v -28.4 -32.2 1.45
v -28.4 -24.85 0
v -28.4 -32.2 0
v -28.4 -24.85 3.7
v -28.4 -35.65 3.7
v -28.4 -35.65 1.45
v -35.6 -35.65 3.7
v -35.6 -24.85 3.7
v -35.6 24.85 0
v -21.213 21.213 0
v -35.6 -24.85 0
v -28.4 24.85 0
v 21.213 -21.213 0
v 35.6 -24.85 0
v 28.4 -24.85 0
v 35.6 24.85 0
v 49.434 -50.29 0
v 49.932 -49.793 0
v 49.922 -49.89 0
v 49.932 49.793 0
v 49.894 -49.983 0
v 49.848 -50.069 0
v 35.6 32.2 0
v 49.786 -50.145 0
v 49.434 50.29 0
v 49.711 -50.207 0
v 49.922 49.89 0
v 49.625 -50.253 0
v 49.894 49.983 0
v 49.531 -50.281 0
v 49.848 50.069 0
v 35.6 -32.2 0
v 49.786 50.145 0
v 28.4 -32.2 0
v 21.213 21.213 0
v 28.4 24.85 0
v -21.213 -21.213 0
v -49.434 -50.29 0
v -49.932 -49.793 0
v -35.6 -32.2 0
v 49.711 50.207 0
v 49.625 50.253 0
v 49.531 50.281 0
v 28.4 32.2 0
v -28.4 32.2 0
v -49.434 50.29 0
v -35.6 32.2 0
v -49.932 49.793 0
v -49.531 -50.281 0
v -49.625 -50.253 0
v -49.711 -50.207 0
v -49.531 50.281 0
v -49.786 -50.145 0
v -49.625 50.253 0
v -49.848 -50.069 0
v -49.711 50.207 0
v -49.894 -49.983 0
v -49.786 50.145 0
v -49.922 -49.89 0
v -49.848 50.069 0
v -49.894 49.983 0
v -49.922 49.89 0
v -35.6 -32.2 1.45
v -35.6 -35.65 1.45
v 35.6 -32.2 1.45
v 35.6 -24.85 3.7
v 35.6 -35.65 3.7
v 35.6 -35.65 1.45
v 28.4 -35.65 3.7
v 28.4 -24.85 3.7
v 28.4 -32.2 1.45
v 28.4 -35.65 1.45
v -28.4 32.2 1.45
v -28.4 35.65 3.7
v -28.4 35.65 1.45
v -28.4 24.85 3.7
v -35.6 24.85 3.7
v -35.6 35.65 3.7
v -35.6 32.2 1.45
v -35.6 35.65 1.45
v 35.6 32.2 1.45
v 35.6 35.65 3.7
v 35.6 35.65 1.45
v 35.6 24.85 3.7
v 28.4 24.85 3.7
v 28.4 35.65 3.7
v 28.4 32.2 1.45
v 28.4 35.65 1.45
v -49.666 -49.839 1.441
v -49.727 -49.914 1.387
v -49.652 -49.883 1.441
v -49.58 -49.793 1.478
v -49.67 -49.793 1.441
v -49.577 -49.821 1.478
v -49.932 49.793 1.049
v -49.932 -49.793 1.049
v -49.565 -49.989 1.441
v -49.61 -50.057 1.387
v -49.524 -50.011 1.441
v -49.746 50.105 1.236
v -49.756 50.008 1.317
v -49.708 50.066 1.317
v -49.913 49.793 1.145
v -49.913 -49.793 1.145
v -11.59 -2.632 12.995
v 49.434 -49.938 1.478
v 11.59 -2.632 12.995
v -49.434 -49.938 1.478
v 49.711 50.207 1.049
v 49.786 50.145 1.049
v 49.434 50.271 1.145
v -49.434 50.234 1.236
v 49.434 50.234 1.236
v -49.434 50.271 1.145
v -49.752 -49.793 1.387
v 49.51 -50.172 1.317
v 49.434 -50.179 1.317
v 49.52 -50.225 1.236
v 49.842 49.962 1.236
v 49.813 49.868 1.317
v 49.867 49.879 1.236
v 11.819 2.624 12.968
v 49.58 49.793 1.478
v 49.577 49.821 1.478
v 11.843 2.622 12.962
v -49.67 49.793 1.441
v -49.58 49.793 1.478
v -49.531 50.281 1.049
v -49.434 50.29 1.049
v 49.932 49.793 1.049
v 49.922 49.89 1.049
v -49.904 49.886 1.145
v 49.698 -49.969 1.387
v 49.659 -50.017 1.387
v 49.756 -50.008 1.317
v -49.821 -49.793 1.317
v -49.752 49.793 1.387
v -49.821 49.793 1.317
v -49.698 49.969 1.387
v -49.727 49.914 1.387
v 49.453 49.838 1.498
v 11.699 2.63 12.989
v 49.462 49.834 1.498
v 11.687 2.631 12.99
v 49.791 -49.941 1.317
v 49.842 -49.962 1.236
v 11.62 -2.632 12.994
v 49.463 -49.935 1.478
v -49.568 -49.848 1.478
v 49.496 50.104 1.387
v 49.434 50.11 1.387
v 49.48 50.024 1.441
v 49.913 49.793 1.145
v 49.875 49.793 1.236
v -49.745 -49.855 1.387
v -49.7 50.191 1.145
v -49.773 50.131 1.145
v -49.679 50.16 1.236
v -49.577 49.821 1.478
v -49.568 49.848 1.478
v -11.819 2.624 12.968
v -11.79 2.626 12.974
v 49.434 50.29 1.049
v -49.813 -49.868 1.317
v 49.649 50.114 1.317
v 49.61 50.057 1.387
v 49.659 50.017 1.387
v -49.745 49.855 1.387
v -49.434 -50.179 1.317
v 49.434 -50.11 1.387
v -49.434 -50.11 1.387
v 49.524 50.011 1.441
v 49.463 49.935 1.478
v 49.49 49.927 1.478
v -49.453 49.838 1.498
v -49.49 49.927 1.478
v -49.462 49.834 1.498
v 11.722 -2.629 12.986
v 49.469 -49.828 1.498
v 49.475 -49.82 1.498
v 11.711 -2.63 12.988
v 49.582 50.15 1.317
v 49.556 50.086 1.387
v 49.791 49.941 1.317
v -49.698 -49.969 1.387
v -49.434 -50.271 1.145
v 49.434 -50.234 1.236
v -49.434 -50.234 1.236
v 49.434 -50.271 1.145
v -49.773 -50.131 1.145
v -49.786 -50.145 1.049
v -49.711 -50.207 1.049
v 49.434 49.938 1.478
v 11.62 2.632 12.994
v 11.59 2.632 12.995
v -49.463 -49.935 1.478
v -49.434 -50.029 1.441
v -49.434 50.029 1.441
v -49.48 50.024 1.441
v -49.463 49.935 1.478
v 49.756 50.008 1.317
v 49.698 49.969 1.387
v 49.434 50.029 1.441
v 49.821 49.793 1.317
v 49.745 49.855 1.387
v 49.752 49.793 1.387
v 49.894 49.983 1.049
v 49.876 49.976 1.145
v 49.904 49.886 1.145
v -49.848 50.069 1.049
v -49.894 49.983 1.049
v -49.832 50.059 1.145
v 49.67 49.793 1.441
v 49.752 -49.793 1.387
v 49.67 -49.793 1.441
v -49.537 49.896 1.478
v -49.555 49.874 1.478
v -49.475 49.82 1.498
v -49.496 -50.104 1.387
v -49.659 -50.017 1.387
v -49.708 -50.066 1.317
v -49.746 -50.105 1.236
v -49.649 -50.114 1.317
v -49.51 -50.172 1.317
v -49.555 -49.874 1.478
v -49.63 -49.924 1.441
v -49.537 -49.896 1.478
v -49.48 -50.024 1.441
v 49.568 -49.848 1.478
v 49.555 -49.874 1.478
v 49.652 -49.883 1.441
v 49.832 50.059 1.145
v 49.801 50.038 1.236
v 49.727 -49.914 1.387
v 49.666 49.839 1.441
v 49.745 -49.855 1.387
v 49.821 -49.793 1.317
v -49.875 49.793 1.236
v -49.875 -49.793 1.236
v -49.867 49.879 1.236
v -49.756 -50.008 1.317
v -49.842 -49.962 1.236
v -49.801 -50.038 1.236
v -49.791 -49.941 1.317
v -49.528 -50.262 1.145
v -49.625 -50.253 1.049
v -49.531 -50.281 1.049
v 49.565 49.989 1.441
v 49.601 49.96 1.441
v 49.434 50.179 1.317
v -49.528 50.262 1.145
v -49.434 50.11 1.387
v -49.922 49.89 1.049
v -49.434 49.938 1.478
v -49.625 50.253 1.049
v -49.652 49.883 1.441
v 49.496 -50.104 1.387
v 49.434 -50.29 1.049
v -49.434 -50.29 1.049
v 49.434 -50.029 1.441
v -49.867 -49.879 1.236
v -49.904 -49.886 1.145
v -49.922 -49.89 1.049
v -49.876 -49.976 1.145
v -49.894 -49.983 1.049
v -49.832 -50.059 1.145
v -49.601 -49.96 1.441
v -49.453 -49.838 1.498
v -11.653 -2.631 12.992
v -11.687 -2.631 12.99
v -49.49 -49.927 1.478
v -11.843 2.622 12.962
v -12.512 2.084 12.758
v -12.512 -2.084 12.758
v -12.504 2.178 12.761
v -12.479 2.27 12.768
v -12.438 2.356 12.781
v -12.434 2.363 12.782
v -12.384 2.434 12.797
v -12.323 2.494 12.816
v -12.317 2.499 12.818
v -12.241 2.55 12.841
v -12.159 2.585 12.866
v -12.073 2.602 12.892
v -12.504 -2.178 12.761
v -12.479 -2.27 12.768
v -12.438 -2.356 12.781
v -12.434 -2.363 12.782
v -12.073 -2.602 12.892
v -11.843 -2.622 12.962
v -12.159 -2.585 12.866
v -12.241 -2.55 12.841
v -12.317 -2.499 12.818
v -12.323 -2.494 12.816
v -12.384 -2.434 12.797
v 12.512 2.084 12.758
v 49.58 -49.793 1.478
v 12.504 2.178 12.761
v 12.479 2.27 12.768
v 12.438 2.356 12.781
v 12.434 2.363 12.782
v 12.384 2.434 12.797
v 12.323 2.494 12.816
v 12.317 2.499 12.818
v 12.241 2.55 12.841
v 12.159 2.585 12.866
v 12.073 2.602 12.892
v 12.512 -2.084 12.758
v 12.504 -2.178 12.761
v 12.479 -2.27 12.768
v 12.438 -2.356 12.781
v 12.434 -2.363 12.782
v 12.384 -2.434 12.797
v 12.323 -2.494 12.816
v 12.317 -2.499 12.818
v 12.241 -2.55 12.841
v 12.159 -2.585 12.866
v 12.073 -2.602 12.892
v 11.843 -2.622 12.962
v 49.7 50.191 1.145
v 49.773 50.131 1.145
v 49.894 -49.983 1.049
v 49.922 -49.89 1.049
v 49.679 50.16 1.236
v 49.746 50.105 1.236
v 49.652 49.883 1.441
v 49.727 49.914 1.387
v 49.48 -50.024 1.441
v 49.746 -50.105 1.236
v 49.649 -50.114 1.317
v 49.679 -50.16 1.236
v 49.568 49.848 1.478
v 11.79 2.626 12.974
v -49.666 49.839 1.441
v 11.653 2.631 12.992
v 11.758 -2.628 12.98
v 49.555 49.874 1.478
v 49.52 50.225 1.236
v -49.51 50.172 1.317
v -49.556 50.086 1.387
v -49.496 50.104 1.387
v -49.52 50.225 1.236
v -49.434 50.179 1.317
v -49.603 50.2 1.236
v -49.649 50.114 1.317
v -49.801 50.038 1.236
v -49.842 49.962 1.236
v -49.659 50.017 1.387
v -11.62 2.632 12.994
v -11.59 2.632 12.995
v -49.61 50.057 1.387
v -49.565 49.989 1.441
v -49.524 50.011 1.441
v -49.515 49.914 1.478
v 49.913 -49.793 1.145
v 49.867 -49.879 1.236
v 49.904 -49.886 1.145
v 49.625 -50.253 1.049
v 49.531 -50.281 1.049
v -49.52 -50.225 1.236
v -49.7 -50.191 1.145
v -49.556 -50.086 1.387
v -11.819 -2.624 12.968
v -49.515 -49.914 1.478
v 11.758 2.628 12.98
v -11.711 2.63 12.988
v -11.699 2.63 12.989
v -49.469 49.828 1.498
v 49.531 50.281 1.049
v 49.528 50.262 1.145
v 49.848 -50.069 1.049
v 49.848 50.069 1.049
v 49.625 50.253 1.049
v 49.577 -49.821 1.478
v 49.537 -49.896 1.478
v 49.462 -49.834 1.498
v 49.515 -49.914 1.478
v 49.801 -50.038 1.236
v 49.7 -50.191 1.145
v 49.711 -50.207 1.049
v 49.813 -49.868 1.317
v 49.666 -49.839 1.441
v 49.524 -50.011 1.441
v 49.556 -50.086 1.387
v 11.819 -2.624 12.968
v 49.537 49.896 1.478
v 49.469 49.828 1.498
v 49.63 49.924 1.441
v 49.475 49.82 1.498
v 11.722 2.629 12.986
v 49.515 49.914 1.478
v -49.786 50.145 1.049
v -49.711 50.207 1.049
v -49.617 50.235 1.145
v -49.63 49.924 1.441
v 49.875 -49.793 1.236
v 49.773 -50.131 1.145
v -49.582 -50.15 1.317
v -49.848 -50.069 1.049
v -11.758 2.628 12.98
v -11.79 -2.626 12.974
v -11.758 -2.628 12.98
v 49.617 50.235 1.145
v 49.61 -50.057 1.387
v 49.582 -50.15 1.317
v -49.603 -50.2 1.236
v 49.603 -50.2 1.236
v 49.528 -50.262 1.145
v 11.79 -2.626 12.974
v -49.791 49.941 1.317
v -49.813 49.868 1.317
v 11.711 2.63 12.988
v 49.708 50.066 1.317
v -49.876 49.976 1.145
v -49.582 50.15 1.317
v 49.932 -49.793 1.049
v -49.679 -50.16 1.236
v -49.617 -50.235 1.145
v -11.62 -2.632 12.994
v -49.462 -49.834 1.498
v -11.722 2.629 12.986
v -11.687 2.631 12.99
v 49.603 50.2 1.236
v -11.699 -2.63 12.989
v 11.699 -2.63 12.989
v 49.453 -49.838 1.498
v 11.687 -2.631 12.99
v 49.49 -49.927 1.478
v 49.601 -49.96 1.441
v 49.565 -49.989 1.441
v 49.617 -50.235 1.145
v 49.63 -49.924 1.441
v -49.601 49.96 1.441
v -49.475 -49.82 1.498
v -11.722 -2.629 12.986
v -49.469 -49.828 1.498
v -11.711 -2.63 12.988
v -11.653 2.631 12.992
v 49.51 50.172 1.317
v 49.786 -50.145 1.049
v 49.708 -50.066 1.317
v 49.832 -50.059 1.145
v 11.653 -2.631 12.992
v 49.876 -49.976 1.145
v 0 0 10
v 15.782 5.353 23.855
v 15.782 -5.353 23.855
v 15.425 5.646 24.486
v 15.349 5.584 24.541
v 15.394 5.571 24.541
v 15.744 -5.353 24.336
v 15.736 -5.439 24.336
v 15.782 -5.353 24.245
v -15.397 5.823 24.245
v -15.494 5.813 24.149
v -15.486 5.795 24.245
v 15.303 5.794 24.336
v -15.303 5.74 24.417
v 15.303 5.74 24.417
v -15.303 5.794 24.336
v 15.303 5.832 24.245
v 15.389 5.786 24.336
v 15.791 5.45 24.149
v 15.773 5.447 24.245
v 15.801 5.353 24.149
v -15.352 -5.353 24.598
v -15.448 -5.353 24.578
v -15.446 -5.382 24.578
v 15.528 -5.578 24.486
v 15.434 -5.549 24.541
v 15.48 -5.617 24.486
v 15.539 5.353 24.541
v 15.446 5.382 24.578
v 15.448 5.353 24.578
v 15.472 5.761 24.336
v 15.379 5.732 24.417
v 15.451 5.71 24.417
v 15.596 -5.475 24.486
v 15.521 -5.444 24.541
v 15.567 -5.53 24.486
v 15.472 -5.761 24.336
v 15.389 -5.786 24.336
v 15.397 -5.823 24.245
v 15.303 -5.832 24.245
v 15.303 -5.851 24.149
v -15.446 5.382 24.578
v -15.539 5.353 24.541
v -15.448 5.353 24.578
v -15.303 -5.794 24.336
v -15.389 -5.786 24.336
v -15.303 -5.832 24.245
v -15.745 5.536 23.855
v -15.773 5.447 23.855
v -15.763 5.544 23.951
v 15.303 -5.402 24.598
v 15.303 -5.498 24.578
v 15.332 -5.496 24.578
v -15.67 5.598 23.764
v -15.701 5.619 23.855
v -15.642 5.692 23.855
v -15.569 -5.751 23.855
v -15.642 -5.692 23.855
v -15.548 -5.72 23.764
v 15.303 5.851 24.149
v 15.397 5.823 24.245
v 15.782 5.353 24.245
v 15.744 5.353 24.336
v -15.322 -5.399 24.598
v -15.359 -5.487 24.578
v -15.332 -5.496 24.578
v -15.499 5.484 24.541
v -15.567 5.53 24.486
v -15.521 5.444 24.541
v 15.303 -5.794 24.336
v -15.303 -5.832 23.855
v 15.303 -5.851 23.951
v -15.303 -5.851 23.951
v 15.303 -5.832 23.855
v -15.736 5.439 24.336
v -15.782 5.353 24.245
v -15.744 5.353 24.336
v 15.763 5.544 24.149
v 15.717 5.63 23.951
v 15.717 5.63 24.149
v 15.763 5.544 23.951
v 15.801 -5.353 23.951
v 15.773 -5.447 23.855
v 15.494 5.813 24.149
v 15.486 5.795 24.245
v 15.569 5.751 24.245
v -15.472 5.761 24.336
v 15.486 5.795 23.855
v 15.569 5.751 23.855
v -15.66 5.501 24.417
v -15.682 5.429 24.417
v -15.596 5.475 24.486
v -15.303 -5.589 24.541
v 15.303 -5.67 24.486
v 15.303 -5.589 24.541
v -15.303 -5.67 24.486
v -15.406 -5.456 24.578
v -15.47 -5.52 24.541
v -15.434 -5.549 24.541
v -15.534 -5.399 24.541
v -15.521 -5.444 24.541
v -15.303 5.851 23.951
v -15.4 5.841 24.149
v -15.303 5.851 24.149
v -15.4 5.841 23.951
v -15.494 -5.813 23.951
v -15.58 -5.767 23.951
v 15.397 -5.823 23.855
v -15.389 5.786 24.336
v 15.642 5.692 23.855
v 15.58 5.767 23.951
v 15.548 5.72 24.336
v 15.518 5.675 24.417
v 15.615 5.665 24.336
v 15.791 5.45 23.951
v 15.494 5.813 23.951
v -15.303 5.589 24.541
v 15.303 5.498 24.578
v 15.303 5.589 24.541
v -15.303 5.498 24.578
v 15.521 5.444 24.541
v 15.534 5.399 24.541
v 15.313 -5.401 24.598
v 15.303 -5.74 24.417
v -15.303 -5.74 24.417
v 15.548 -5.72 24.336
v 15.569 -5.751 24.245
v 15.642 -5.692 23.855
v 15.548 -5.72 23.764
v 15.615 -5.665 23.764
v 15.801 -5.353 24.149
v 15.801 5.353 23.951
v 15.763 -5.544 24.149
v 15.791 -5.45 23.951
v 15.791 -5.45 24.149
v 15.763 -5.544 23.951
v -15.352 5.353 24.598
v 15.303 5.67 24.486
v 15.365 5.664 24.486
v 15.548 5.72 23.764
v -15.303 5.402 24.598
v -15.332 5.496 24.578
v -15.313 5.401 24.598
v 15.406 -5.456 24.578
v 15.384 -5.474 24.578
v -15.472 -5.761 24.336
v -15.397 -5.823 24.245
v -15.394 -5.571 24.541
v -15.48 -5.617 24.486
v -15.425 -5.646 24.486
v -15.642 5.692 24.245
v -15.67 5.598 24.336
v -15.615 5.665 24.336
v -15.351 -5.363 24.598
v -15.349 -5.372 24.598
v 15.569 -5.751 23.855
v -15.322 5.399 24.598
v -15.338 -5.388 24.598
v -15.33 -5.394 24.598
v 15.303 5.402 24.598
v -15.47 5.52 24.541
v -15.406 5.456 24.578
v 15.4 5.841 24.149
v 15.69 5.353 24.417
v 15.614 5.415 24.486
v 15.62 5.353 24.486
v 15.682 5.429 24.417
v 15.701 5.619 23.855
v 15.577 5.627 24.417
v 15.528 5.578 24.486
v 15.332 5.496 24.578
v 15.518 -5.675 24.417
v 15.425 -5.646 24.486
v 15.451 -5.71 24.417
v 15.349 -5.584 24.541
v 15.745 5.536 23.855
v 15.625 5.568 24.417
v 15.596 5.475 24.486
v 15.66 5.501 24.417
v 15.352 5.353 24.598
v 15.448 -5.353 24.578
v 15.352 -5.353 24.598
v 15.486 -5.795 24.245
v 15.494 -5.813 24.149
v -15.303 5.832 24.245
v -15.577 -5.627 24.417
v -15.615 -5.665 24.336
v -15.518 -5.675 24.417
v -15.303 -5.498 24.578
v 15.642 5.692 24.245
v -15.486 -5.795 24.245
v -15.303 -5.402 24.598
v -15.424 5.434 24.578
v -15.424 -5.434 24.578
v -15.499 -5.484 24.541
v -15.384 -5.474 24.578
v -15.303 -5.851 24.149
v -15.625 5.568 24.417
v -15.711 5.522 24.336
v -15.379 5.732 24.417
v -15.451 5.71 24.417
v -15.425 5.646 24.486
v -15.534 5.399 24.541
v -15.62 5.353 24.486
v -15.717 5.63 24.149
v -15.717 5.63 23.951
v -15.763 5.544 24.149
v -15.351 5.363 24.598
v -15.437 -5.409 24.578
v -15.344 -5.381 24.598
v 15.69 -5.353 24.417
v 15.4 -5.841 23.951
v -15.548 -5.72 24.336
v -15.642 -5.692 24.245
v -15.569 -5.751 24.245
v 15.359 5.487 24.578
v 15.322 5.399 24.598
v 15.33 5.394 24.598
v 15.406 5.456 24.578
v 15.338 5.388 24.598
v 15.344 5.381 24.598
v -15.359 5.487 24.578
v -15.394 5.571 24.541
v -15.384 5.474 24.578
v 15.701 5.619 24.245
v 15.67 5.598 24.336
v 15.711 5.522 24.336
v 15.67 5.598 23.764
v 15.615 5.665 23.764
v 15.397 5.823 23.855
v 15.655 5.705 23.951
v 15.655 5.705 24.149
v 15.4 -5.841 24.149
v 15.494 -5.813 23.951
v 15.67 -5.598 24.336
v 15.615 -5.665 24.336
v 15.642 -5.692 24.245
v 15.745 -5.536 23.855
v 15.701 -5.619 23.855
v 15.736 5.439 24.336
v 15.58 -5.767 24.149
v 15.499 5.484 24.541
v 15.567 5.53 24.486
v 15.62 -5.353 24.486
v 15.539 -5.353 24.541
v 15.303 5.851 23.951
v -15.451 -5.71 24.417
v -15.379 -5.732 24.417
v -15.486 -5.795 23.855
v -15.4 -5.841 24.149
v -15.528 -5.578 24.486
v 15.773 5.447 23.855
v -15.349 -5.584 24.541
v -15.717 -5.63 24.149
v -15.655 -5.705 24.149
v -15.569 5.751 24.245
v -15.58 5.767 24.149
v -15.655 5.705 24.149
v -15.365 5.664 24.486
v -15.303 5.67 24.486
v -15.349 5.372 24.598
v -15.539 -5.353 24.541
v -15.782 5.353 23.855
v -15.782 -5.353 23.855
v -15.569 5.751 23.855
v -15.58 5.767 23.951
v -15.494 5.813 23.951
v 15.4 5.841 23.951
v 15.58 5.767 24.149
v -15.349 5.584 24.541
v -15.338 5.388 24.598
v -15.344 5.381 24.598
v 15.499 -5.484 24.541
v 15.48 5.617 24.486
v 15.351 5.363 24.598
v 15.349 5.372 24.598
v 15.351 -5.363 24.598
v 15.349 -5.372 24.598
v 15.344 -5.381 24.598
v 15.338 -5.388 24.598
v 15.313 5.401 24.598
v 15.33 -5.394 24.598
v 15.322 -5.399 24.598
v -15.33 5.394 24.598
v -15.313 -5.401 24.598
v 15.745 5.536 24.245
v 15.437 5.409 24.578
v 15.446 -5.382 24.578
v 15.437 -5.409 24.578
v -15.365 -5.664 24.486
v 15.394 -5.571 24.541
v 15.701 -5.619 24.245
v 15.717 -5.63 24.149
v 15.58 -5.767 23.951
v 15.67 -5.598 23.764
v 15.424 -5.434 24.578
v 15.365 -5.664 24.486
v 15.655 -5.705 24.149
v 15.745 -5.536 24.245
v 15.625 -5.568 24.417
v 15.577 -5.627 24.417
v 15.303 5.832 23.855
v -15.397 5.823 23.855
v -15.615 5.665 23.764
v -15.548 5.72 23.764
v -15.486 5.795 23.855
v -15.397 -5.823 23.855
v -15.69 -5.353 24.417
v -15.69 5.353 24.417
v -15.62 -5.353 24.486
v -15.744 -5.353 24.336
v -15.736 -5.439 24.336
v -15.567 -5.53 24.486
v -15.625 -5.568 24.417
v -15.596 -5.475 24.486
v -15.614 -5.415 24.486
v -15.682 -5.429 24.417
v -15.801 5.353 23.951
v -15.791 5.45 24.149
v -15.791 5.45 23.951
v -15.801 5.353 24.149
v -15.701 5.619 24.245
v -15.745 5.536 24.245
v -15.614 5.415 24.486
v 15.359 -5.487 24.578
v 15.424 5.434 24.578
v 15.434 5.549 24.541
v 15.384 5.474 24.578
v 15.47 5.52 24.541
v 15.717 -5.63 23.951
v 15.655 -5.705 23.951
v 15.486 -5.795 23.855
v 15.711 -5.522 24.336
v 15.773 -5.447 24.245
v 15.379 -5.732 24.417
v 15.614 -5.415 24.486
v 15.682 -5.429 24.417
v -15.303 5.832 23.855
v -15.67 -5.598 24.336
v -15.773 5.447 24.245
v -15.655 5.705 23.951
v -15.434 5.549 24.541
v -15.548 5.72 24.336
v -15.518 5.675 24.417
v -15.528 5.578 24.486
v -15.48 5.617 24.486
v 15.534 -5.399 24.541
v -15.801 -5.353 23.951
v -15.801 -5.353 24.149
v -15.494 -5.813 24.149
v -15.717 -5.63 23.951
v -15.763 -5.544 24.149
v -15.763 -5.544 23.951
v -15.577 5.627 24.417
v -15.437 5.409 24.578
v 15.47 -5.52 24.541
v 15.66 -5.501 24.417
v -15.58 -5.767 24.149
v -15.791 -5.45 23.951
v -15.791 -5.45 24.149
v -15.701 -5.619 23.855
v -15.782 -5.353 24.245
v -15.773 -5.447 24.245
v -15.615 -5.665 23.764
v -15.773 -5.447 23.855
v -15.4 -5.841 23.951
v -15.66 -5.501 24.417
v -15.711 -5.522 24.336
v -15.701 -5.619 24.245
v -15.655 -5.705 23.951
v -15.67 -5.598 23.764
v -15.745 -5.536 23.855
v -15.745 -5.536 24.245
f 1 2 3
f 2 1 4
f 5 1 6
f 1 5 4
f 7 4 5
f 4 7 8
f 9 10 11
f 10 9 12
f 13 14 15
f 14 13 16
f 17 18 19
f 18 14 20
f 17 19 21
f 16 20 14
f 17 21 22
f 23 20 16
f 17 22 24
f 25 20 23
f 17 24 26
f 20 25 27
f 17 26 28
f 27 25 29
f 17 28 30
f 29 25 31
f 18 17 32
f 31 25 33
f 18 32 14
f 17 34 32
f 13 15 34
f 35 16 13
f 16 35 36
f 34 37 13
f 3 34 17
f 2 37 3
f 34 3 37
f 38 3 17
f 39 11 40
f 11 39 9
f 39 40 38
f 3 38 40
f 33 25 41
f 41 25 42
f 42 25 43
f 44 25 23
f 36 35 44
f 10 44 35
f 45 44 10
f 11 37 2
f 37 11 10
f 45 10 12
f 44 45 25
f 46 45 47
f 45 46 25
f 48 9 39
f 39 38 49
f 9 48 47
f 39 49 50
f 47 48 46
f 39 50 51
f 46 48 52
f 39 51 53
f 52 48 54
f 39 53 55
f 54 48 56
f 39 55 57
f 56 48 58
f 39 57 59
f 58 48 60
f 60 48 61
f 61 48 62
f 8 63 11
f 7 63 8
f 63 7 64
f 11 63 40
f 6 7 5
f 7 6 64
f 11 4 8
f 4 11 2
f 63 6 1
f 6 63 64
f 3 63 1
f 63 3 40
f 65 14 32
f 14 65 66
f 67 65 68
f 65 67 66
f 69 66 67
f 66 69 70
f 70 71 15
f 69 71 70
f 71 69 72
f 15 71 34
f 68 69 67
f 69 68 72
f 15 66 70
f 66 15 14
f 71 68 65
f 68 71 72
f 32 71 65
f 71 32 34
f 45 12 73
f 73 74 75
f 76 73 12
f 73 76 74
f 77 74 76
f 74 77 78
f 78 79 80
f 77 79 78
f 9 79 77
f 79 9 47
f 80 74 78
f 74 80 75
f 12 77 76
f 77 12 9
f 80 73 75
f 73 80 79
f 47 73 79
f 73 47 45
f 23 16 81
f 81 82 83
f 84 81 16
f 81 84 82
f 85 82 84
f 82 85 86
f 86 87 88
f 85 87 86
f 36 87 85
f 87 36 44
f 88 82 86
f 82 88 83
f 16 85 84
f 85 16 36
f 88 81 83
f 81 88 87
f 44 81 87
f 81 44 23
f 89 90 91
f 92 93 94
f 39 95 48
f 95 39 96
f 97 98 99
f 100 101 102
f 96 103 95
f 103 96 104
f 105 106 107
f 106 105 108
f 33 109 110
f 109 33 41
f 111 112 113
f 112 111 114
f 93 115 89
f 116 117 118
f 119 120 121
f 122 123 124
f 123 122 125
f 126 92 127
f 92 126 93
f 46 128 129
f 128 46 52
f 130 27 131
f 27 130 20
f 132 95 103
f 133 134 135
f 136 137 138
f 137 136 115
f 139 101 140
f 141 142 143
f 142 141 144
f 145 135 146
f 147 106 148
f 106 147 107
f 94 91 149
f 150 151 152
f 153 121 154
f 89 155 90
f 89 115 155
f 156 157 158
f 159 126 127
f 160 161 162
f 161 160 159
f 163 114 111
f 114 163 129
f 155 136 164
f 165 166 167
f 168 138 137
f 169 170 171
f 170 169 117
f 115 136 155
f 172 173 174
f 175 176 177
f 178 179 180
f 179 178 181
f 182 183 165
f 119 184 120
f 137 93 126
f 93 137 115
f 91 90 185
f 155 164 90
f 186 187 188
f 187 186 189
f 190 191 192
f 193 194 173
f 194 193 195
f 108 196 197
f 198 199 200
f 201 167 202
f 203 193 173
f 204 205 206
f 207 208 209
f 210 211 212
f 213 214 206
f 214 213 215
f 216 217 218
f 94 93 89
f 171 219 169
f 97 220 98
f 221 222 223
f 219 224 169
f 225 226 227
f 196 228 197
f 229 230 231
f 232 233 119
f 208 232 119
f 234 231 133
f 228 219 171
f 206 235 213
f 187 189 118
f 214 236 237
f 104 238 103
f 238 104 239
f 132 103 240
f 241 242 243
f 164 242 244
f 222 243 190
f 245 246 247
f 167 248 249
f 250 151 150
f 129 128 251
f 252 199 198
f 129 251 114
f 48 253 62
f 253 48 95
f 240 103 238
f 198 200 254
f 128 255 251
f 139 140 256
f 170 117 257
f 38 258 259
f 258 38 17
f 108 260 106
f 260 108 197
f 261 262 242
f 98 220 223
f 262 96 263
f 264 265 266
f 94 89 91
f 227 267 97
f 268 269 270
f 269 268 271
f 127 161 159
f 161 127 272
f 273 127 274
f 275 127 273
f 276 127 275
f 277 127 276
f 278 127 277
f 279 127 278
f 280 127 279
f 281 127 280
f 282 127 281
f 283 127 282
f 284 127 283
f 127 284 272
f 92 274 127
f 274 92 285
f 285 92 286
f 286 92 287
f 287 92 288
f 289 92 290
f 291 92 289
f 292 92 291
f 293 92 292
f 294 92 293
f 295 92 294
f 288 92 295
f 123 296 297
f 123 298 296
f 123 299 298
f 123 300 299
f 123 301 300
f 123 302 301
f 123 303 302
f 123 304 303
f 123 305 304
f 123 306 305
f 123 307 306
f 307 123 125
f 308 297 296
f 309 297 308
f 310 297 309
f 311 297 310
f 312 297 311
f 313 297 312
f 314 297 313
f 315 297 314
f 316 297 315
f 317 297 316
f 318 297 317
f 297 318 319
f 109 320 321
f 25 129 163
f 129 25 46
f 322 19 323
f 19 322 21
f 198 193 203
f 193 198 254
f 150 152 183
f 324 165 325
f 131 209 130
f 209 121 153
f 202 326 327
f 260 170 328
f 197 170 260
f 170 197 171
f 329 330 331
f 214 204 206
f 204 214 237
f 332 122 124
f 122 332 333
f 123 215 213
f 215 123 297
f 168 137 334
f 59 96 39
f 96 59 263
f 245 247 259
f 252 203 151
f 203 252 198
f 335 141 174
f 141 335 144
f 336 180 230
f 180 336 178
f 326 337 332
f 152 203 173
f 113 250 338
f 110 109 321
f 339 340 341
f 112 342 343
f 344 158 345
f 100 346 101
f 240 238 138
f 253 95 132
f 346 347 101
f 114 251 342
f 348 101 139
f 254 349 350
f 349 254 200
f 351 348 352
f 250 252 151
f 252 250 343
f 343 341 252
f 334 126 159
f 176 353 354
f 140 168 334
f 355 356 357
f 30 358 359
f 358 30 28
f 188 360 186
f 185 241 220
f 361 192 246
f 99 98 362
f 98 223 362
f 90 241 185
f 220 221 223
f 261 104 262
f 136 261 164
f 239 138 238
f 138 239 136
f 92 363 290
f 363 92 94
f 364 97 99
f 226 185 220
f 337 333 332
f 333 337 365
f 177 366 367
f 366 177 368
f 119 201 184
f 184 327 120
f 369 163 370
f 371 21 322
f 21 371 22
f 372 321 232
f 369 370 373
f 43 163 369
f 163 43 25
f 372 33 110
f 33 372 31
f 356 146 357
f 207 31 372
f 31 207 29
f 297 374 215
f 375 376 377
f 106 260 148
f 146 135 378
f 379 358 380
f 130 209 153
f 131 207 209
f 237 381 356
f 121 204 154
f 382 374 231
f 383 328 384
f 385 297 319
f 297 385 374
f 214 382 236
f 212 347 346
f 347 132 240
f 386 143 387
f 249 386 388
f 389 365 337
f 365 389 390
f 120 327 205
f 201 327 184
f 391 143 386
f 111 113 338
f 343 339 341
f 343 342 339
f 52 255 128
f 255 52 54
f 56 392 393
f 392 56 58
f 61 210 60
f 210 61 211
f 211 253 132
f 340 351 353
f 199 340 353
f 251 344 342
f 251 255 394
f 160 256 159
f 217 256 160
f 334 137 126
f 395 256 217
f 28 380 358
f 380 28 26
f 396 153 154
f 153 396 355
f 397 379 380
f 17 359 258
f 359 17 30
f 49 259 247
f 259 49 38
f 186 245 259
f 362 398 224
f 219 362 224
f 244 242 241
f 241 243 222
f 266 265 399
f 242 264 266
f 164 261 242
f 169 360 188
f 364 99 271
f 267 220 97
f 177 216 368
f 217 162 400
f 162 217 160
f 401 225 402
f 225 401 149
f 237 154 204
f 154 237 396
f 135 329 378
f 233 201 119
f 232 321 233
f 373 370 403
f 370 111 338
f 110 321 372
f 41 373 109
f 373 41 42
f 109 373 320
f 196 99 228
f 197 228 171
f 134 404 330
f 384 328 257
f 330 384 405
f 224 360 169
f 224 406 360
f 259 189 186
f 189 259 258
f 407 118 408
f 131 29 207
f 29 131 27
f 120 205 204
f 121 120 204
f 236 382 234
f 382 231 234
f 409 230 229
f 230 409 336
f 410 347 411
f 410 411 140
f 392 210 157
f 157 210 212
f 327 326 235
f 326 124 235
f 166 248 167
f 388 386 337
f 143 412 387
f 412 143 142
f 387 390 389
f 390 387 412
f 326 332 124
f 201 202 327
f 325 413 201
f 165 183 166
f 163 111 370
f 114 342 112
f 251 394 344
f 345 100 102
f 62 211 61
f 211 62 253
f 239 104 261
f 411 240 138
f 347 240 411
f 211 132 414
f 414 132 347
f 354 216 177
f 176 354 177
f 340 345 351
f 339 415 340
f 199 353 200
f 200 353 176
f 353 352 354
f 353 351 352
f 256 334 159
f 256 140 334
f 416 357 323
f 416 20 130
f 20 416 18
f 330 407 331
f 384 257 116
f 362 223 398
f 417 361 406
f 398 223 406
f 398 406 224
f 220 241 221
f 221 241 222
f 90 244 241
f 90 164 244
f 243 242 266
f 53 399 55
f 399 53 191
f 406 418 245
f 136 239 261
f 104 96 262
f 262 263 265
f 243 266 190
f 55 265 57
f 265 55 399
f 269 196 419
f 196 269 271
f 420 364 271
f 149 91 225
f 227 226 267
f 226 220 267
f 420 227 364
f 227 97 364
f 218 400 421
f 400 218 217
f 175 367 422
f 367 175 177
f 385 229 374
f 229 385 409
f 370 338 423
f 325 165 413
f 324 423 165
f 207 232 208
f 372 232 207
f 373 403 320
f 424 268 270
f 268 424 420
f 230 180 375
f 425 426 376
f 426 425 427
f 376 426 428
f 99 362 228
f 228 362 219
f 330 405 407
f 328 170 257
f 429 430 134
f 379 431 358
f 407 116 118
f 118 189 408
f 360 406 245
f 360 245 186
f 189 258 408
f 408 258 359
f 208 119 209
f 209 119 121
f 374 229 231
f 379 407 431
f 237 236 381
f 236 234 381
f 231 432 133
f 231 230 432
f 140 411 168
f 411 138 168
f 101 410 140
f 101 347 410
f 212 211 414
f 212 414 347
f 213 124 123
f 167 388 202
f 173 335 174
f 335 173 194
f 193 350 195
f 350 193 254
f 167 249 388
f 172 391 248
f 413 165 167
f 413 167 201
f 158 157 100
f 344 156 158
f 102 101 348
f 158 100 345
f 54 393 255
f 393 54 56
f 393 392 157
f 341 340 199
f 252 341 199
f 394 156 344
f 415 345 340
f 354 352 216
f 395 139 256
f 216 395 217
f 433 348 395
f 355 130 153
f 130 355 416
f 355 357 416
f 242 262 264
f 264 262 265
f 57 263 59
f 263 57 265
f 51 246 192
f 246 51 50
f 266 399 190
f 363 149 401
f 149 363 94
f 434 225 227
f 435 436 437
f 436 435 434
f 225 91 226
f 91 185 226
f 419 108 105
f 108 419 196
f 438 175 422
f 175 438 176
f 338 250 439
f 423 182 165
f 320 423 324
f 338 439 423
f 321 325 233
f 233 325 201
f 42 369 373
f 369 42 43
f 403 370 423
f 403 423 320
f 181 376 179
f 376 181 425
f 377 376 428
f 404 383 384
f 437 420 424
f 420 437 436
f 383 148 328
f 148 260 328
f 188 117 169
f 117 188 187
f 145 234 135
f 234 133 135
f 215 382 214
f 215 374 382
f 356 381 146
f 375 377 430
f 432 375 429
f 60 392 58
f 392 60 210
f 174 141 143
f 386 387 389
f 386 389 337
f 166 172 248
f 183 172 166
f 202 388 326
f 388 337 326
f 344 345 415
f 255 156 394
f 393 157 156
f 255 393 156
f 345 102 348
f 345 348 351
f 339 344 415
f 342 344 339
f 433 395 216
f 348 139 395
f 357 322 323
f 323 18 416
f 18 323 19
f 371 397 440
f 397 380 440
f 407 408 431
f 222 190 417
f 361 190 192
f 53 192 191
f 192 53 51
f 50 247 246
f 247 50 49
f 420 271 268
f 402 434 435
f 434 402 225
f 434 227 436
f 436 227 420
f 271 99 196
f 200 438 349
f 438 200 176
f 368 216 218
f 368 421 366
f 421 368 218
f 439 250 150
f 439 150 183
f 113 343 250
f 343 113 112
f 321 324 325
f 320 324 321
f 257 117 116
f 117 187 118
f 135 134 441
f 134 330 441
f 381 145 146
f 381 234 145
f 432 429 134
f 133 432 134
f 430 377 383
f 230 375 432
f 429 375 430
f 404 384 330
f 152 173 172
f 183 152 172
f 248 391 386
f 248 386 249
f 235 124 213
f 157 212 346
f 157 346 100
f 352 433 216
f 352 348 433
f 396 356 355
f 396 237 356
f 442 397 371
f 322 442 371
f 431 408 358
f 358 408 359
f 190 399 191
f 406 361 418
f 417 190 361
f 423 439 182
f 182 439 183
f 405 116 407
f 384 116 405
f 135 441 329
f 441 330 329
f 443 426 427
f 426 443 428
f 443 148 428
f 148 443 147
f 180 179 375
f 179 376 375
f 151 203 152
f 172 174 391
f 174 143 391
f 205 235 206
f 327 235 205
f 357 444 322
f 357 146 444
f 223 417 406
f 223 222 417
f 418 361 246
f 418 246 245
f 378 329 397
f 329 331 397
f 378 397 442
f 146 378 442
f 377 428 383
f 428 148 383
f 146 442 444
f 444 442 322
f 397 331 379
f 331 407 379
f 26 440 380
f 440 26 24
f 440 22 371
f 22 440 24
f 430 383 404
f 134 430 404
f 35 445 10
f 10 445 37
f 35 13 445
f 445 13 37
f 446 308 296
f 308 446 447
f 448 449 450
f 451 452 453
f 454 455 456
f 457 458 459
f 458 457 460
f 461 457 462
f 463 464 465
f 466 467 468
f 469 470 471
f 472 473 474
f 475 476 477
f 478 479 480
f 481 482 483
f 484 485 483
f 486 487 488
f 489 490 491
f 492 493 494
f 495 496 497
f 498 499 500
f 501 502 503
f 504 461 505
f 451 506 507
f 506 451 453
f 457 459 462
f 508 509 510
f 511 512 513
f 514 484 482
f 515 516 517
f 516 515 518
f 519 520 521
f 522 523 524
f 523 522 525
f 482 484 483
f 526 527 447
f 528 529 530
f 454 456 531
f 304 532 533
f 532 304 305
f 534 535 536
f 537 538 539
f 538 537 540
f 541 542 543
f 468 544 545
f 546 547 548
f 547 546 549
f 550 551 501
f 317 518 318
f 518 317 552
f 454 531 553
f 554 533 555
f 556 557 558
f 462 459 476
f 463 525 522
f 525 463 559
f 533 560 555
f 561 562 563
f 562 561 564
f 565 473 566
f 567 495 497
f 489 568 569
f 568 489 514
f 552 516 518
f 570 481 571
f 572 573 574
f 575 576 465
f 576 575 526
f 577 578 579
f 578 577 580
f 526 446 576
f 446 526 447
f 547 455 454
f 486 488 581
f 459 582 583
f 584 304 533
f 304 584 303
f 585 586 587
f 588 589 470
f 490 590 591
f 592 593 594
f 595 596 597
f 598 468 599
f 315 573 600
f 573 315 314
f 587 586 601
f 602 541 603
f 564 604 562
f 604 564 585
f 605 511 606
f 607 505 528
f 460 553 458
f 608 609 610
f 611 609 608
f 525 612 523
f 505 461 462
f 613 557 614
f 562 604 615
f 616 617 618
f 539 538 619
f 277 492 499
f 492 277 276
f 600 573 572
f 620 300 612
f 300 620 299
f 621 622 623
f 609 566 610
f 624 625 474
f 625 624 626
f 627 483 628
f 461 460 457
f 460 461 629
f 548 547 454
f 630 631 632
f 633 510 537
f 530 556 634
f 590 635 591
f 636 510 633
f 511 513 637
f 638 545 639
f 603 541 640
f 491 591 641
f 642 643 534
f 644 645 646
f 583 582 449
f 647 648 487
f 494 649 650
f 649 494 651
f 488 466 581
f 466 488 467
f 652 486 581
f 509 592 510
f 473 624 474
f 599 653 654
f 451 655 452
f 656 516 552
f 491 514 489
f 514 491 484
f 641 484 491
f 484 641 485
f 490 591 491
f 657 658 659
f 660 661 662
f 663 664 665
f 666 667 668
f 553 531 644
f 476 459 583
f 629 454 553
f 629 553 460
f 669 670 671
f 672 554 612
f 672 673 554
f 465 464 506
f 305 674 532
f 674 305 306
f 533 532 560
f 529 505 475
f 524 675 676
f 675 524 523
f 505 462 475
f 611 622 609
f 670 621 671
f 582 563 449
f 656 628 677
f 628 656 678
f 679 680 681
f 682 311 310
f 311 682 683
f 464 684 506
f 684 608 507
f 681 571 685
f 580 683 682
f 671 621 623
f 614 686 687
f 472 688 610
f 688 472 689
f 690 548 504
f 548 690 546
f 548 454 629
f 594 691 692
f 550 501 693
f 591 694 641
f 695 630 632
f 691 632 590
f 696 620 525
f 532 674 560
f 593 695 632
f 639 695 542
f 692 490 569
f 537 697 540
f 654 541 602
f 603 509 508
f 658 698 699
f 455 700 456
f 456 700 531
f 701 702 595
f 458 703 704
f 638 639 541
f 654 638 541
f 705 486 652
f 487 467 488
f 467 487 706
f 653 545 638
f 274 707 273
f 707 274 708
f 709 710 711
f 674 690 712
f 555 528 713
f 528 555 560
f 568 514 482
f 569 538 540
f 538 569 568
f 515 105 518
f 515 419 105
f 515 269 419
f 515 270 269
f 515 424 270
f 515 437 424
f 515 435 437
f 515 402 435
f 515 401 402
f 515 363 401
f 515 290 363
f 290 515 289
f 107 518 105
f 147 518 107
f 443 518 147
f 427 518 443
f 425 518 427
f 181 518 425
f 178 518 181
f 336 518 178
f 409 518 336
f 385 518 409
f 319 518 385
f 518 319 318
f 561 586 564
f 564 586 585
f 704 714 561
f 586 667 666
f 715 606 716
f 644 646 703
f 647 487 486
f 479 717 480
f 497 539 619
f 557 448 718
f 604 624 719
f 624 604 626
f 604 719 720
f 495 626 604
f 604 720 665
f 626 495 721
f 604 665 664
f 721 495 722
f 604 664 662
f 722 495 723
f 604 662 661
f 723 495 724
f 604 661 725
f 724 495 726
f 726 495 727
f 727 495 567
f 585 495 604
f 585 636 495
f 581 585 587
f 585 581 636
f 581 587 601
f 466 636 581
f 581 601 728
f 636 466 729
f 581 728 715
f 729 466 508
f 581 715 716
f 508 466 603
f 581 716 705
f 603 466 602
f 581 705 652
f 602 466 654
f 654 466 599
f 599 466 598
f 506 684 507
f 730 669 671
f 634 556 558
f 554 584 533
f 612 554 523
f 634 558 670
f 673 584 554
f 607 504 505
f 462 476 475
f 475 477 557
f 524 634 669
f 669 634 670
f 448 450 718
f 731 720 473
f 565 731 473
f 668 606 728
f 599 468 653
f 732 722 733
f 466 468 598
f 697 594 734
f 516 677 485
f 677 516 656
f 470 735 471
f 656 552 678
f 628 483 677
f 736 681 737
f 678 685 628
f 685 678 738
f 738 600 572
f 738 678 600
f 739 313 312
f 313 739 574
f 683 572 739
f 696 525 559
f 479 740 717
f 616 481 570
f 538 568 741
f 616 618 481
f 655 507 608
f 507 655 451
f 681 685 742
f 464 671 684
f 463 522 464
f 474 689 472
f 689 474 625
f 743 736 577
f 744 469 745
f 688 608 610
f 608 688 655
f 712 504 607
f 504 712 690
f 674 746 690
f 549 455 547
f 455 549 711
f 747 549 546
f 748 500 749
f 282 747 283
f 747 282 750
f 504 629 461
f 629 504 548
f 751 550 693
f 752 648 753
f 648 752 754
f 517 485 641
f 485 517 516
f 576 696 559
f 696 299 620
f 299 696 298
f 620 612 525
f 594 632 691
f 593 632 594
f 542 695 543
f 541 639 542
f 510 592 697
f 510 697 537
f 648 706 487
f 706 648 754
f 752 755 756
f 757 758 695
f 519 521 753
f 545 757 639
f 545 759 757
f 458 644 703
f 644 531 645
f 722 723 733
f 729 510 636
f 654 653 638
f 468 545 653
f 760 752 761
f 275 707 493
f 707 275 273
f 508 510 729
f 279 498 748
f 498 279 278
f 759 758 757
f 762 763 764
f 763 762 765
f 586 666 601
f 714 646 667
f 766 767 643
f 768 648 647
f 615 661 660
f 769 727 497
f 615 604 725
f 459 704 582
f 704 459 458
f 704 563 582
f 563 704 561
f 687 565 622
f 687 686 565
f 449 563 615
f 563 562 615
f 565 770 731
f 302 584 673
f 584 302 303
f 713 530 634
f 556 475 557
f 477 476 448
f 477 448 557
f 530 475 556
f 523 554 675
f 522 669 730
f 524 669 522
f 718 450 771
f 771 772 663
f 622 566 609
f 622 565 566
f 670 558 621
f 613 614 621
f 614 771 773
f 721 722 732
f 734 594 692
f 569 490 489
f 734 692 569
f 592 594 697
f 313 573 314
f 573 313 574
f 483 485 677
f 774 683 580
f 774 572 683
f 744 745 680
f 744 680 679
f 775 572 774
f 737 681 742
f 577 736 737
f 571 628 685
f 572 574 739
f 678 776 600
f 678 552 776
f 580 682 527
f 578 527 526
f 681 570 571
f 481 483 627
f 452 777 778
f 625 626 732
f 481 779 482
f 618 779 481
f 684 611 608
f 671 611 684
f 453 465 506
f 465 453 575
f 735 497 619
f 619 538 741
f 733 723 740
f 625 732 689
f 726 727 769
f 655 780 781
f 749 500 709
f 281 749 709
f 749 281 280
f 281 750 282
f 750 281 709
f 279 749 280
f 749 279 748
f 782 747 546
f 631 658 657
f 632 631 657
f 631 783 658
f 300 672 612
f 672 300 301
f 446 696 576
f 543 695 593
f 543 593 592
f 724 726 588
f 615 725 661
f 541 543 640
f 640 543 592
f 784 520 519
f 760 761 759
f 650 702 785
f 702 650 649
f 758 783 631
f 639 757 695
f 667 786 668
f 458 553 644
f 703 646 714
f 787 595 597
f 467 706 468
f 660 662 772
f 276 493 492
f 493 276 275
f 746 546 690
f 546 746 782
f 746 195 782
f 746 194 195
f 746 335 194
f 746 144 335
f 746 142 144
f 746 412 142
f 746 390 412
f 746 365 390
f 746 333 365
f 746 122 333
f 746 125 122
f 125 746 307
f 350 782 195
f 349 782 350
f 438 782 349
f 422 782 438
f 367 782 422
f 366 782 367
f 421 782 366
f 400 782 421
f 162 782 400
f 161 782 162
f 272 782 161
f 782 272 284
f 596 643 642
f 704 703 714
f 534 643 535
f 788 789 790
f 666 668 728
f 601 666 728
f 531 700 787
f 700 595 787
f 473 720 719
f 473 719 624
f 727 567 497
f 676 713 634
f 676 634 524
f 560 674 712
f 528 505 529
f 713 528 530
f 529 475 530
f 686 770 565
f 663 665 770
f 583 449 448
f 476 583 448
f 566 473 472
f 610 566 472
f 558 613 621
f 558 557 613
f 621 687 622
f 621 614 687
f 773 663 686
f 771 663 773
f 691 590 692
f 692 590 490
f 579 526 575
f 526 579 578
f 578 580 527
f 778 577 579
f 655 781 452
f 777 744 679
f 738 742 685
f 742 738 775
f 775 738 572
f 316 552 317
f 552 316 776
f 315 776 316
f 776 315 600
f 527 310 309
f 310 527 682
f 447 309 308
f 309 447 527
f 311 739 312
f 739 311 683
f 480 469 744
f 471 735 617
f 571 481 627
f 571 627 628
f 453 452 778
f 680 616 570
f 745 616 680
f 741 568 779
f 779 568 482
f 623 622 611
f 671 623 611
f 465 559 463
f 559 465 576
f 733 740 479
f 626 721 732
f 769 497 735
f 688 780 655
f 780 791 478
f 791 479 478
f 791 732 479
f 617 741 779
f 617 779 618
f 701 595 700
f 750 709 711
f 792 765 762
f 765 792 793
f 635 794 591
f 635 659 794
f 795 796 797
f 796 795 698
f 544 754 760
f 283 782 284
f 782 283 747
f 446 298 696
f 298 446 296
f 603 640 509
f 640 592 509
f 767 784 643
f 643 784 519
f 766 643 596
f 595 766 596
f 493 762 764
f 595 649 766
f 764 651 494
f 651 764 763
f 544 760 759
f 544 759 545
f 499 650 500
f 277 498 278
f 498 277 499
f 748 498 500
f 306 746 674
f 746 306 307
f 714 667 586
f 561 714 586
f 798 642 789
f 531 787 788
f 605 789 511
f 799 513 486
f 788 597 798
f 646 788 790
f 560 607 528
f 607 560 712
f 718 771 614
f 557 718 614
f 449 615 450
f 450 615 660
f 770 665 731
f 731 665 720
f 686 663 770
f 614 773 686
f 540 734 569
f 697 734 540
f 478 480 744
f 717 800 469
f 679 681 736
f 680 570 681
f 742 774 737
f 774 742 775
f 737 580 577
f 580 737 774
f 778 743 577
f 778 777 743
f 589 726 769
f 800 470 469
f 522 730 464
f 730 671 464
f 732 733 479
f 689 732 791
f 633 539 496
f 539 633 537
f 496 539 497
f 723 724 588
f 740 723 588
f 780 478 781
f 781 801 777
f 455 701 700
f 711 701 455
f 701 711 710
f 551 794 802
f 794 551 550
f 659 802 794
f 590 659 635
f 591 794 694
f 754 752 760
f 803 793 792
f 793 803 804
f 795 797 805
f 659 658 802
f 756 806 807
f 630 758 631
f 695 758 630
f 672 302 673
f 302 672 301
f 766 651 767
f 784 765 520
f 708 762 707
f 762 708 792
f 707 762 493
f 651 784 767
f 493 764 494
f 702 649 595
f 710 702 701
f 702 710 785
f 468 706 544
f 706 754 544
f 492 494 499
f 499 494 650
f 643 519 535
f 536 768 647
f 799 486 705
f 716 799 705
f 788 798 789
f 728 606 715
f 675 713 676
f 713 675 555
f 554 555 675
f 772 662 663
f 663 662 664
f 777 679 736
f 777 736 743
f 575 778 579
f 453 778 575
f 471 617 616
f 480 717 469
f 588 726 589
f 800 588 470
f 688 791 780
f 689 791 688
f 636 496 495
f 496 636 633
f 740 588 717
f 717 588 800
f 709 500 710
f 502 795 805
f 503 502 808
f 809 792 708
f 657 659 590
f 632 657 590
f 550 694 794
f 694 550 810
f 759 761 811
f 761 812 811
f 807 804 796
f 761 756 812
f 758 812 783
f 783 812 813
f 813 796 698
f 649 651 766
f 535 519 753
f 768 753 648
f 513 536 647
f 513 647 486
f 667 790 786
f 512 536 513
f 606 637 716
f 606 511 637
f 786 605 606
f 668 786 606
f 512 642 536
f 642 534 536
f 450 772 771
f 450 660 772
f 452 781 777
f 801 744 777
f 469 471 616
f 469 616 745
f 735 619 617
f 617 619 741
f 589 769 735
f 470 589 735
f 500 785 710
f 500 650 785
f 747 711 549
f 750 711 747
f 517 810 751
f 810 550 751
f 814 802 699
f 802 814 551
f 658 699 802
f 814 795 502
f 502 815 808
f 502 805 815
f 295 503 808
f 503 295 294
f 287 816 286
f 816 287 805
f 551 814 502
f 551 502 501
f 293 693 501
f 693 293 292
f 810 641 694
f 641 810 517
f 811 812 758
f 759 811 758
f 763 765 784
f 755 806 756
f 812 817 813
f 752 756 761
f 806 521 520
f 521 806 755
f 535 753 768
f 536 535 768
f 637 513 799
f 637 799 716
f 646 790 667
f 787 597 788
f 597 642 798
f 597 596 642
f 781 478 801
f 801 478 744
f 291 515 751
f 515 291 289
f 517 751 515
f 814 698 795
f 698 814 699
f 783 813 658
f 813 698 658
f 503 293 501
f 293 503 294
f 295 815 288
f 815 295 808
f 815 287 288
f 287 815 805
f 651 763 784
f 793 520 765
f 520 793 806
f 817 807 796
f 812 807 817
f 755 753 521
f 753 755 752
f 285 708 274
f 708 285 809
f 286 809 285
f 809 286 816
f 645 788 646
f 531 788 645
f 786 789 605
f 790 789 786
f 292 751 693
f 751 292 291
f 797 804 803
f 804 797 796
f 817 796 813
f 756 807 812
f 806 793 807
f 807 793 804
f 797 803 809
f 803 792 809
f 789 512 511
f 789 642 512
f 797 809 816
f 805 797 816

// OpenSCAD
W=64;
W2=100;
H=90;
T=1.5;
B=7;
Q=7;
H1=7;
HR=12;

roof3();
module roof3() {
    R=1;
    difference() {
    minkowski() {
        scale([0.8,1,1])
        rotate([0,0,45])
        cylinder(d1=W2*sqrt(2)-R*2,d2=0,h=HR,$fn=4);
        cube_center([W2*0.2,1,1]);
        sphere(d=R,$fn=32);
    }
    scale([1,1,-1])
    cube_center([500,500,100]);
    
    for(s=[-1:1])
        for(y=[-W/2,W/2])
            scale([1,s,1])
    translate([y,W/2-H1/4,0])
        difference() {
        cube_center([H1+0.2,1.5*H1+0.3,H1/2+.2]);
            translate([0,H1/2+0.2,0])
        cube_center([H1+0.2,H1/2,H1/4-0.3]);
        }
     rotate([0,0,45])
    cylinder(d1=60,d2=0,h=10,$fn=4);
}
    translate([0,0,HR])
minkowski() {
    rotate([0,0,45])
    cylinder(d1=5,d2=15,h=HR,$fn=4);
    cube_center([W2*0.2,0.1,0.1]);
    
        sphere(d=R,$fn=32);
}
}


module cube_center(dims,r=0) {
    if(r==0) {
        translate([-dims[0]/2, -dims[1]/2, 0])
        cube(dims);
    } else {
        
        minkowski() {
            translate([-dims[0]/2+r, -dims[1]/2+r, 0])
            cube([dims[0]-2*r,dims[1]-2*r,dims[2]]);
            cylinder(r=r,h=0.00001,$fn=32);
        }
    }

}


module crossX() {
    difference() {
        cube_center([H1,W+3*H1,H1]);
        for(s=[-1:2:1]) {
            scale([1,s,1]) {
                translate([H1/4,(W+3*H1)/2-H1/2-H1,0])
                cube_center([H1/2,H1,H1]);
                translate([0,(W+3*H1)/2-H1/2-H1,H1/2])
                cube_center([H1,H1,H1/2]);
            }
        }
    }
}

module crossY() {
    translate([-H1/4,0,H1/4])
    rotate([90,0,0])
    cylinder(d=H1/2,h=W+3*H1,center=true,$fn=32);
    difference() {
        cube_center([H1,W+3*H1,H1]);
        for(s=[-1:2:1]) {
            scale([1,s,1]) {
                translate([0,(W+3*H1)/2-H1/2-H1,0])
                cube_center([H1,H1,H1]);
            }
        }
    }
}
